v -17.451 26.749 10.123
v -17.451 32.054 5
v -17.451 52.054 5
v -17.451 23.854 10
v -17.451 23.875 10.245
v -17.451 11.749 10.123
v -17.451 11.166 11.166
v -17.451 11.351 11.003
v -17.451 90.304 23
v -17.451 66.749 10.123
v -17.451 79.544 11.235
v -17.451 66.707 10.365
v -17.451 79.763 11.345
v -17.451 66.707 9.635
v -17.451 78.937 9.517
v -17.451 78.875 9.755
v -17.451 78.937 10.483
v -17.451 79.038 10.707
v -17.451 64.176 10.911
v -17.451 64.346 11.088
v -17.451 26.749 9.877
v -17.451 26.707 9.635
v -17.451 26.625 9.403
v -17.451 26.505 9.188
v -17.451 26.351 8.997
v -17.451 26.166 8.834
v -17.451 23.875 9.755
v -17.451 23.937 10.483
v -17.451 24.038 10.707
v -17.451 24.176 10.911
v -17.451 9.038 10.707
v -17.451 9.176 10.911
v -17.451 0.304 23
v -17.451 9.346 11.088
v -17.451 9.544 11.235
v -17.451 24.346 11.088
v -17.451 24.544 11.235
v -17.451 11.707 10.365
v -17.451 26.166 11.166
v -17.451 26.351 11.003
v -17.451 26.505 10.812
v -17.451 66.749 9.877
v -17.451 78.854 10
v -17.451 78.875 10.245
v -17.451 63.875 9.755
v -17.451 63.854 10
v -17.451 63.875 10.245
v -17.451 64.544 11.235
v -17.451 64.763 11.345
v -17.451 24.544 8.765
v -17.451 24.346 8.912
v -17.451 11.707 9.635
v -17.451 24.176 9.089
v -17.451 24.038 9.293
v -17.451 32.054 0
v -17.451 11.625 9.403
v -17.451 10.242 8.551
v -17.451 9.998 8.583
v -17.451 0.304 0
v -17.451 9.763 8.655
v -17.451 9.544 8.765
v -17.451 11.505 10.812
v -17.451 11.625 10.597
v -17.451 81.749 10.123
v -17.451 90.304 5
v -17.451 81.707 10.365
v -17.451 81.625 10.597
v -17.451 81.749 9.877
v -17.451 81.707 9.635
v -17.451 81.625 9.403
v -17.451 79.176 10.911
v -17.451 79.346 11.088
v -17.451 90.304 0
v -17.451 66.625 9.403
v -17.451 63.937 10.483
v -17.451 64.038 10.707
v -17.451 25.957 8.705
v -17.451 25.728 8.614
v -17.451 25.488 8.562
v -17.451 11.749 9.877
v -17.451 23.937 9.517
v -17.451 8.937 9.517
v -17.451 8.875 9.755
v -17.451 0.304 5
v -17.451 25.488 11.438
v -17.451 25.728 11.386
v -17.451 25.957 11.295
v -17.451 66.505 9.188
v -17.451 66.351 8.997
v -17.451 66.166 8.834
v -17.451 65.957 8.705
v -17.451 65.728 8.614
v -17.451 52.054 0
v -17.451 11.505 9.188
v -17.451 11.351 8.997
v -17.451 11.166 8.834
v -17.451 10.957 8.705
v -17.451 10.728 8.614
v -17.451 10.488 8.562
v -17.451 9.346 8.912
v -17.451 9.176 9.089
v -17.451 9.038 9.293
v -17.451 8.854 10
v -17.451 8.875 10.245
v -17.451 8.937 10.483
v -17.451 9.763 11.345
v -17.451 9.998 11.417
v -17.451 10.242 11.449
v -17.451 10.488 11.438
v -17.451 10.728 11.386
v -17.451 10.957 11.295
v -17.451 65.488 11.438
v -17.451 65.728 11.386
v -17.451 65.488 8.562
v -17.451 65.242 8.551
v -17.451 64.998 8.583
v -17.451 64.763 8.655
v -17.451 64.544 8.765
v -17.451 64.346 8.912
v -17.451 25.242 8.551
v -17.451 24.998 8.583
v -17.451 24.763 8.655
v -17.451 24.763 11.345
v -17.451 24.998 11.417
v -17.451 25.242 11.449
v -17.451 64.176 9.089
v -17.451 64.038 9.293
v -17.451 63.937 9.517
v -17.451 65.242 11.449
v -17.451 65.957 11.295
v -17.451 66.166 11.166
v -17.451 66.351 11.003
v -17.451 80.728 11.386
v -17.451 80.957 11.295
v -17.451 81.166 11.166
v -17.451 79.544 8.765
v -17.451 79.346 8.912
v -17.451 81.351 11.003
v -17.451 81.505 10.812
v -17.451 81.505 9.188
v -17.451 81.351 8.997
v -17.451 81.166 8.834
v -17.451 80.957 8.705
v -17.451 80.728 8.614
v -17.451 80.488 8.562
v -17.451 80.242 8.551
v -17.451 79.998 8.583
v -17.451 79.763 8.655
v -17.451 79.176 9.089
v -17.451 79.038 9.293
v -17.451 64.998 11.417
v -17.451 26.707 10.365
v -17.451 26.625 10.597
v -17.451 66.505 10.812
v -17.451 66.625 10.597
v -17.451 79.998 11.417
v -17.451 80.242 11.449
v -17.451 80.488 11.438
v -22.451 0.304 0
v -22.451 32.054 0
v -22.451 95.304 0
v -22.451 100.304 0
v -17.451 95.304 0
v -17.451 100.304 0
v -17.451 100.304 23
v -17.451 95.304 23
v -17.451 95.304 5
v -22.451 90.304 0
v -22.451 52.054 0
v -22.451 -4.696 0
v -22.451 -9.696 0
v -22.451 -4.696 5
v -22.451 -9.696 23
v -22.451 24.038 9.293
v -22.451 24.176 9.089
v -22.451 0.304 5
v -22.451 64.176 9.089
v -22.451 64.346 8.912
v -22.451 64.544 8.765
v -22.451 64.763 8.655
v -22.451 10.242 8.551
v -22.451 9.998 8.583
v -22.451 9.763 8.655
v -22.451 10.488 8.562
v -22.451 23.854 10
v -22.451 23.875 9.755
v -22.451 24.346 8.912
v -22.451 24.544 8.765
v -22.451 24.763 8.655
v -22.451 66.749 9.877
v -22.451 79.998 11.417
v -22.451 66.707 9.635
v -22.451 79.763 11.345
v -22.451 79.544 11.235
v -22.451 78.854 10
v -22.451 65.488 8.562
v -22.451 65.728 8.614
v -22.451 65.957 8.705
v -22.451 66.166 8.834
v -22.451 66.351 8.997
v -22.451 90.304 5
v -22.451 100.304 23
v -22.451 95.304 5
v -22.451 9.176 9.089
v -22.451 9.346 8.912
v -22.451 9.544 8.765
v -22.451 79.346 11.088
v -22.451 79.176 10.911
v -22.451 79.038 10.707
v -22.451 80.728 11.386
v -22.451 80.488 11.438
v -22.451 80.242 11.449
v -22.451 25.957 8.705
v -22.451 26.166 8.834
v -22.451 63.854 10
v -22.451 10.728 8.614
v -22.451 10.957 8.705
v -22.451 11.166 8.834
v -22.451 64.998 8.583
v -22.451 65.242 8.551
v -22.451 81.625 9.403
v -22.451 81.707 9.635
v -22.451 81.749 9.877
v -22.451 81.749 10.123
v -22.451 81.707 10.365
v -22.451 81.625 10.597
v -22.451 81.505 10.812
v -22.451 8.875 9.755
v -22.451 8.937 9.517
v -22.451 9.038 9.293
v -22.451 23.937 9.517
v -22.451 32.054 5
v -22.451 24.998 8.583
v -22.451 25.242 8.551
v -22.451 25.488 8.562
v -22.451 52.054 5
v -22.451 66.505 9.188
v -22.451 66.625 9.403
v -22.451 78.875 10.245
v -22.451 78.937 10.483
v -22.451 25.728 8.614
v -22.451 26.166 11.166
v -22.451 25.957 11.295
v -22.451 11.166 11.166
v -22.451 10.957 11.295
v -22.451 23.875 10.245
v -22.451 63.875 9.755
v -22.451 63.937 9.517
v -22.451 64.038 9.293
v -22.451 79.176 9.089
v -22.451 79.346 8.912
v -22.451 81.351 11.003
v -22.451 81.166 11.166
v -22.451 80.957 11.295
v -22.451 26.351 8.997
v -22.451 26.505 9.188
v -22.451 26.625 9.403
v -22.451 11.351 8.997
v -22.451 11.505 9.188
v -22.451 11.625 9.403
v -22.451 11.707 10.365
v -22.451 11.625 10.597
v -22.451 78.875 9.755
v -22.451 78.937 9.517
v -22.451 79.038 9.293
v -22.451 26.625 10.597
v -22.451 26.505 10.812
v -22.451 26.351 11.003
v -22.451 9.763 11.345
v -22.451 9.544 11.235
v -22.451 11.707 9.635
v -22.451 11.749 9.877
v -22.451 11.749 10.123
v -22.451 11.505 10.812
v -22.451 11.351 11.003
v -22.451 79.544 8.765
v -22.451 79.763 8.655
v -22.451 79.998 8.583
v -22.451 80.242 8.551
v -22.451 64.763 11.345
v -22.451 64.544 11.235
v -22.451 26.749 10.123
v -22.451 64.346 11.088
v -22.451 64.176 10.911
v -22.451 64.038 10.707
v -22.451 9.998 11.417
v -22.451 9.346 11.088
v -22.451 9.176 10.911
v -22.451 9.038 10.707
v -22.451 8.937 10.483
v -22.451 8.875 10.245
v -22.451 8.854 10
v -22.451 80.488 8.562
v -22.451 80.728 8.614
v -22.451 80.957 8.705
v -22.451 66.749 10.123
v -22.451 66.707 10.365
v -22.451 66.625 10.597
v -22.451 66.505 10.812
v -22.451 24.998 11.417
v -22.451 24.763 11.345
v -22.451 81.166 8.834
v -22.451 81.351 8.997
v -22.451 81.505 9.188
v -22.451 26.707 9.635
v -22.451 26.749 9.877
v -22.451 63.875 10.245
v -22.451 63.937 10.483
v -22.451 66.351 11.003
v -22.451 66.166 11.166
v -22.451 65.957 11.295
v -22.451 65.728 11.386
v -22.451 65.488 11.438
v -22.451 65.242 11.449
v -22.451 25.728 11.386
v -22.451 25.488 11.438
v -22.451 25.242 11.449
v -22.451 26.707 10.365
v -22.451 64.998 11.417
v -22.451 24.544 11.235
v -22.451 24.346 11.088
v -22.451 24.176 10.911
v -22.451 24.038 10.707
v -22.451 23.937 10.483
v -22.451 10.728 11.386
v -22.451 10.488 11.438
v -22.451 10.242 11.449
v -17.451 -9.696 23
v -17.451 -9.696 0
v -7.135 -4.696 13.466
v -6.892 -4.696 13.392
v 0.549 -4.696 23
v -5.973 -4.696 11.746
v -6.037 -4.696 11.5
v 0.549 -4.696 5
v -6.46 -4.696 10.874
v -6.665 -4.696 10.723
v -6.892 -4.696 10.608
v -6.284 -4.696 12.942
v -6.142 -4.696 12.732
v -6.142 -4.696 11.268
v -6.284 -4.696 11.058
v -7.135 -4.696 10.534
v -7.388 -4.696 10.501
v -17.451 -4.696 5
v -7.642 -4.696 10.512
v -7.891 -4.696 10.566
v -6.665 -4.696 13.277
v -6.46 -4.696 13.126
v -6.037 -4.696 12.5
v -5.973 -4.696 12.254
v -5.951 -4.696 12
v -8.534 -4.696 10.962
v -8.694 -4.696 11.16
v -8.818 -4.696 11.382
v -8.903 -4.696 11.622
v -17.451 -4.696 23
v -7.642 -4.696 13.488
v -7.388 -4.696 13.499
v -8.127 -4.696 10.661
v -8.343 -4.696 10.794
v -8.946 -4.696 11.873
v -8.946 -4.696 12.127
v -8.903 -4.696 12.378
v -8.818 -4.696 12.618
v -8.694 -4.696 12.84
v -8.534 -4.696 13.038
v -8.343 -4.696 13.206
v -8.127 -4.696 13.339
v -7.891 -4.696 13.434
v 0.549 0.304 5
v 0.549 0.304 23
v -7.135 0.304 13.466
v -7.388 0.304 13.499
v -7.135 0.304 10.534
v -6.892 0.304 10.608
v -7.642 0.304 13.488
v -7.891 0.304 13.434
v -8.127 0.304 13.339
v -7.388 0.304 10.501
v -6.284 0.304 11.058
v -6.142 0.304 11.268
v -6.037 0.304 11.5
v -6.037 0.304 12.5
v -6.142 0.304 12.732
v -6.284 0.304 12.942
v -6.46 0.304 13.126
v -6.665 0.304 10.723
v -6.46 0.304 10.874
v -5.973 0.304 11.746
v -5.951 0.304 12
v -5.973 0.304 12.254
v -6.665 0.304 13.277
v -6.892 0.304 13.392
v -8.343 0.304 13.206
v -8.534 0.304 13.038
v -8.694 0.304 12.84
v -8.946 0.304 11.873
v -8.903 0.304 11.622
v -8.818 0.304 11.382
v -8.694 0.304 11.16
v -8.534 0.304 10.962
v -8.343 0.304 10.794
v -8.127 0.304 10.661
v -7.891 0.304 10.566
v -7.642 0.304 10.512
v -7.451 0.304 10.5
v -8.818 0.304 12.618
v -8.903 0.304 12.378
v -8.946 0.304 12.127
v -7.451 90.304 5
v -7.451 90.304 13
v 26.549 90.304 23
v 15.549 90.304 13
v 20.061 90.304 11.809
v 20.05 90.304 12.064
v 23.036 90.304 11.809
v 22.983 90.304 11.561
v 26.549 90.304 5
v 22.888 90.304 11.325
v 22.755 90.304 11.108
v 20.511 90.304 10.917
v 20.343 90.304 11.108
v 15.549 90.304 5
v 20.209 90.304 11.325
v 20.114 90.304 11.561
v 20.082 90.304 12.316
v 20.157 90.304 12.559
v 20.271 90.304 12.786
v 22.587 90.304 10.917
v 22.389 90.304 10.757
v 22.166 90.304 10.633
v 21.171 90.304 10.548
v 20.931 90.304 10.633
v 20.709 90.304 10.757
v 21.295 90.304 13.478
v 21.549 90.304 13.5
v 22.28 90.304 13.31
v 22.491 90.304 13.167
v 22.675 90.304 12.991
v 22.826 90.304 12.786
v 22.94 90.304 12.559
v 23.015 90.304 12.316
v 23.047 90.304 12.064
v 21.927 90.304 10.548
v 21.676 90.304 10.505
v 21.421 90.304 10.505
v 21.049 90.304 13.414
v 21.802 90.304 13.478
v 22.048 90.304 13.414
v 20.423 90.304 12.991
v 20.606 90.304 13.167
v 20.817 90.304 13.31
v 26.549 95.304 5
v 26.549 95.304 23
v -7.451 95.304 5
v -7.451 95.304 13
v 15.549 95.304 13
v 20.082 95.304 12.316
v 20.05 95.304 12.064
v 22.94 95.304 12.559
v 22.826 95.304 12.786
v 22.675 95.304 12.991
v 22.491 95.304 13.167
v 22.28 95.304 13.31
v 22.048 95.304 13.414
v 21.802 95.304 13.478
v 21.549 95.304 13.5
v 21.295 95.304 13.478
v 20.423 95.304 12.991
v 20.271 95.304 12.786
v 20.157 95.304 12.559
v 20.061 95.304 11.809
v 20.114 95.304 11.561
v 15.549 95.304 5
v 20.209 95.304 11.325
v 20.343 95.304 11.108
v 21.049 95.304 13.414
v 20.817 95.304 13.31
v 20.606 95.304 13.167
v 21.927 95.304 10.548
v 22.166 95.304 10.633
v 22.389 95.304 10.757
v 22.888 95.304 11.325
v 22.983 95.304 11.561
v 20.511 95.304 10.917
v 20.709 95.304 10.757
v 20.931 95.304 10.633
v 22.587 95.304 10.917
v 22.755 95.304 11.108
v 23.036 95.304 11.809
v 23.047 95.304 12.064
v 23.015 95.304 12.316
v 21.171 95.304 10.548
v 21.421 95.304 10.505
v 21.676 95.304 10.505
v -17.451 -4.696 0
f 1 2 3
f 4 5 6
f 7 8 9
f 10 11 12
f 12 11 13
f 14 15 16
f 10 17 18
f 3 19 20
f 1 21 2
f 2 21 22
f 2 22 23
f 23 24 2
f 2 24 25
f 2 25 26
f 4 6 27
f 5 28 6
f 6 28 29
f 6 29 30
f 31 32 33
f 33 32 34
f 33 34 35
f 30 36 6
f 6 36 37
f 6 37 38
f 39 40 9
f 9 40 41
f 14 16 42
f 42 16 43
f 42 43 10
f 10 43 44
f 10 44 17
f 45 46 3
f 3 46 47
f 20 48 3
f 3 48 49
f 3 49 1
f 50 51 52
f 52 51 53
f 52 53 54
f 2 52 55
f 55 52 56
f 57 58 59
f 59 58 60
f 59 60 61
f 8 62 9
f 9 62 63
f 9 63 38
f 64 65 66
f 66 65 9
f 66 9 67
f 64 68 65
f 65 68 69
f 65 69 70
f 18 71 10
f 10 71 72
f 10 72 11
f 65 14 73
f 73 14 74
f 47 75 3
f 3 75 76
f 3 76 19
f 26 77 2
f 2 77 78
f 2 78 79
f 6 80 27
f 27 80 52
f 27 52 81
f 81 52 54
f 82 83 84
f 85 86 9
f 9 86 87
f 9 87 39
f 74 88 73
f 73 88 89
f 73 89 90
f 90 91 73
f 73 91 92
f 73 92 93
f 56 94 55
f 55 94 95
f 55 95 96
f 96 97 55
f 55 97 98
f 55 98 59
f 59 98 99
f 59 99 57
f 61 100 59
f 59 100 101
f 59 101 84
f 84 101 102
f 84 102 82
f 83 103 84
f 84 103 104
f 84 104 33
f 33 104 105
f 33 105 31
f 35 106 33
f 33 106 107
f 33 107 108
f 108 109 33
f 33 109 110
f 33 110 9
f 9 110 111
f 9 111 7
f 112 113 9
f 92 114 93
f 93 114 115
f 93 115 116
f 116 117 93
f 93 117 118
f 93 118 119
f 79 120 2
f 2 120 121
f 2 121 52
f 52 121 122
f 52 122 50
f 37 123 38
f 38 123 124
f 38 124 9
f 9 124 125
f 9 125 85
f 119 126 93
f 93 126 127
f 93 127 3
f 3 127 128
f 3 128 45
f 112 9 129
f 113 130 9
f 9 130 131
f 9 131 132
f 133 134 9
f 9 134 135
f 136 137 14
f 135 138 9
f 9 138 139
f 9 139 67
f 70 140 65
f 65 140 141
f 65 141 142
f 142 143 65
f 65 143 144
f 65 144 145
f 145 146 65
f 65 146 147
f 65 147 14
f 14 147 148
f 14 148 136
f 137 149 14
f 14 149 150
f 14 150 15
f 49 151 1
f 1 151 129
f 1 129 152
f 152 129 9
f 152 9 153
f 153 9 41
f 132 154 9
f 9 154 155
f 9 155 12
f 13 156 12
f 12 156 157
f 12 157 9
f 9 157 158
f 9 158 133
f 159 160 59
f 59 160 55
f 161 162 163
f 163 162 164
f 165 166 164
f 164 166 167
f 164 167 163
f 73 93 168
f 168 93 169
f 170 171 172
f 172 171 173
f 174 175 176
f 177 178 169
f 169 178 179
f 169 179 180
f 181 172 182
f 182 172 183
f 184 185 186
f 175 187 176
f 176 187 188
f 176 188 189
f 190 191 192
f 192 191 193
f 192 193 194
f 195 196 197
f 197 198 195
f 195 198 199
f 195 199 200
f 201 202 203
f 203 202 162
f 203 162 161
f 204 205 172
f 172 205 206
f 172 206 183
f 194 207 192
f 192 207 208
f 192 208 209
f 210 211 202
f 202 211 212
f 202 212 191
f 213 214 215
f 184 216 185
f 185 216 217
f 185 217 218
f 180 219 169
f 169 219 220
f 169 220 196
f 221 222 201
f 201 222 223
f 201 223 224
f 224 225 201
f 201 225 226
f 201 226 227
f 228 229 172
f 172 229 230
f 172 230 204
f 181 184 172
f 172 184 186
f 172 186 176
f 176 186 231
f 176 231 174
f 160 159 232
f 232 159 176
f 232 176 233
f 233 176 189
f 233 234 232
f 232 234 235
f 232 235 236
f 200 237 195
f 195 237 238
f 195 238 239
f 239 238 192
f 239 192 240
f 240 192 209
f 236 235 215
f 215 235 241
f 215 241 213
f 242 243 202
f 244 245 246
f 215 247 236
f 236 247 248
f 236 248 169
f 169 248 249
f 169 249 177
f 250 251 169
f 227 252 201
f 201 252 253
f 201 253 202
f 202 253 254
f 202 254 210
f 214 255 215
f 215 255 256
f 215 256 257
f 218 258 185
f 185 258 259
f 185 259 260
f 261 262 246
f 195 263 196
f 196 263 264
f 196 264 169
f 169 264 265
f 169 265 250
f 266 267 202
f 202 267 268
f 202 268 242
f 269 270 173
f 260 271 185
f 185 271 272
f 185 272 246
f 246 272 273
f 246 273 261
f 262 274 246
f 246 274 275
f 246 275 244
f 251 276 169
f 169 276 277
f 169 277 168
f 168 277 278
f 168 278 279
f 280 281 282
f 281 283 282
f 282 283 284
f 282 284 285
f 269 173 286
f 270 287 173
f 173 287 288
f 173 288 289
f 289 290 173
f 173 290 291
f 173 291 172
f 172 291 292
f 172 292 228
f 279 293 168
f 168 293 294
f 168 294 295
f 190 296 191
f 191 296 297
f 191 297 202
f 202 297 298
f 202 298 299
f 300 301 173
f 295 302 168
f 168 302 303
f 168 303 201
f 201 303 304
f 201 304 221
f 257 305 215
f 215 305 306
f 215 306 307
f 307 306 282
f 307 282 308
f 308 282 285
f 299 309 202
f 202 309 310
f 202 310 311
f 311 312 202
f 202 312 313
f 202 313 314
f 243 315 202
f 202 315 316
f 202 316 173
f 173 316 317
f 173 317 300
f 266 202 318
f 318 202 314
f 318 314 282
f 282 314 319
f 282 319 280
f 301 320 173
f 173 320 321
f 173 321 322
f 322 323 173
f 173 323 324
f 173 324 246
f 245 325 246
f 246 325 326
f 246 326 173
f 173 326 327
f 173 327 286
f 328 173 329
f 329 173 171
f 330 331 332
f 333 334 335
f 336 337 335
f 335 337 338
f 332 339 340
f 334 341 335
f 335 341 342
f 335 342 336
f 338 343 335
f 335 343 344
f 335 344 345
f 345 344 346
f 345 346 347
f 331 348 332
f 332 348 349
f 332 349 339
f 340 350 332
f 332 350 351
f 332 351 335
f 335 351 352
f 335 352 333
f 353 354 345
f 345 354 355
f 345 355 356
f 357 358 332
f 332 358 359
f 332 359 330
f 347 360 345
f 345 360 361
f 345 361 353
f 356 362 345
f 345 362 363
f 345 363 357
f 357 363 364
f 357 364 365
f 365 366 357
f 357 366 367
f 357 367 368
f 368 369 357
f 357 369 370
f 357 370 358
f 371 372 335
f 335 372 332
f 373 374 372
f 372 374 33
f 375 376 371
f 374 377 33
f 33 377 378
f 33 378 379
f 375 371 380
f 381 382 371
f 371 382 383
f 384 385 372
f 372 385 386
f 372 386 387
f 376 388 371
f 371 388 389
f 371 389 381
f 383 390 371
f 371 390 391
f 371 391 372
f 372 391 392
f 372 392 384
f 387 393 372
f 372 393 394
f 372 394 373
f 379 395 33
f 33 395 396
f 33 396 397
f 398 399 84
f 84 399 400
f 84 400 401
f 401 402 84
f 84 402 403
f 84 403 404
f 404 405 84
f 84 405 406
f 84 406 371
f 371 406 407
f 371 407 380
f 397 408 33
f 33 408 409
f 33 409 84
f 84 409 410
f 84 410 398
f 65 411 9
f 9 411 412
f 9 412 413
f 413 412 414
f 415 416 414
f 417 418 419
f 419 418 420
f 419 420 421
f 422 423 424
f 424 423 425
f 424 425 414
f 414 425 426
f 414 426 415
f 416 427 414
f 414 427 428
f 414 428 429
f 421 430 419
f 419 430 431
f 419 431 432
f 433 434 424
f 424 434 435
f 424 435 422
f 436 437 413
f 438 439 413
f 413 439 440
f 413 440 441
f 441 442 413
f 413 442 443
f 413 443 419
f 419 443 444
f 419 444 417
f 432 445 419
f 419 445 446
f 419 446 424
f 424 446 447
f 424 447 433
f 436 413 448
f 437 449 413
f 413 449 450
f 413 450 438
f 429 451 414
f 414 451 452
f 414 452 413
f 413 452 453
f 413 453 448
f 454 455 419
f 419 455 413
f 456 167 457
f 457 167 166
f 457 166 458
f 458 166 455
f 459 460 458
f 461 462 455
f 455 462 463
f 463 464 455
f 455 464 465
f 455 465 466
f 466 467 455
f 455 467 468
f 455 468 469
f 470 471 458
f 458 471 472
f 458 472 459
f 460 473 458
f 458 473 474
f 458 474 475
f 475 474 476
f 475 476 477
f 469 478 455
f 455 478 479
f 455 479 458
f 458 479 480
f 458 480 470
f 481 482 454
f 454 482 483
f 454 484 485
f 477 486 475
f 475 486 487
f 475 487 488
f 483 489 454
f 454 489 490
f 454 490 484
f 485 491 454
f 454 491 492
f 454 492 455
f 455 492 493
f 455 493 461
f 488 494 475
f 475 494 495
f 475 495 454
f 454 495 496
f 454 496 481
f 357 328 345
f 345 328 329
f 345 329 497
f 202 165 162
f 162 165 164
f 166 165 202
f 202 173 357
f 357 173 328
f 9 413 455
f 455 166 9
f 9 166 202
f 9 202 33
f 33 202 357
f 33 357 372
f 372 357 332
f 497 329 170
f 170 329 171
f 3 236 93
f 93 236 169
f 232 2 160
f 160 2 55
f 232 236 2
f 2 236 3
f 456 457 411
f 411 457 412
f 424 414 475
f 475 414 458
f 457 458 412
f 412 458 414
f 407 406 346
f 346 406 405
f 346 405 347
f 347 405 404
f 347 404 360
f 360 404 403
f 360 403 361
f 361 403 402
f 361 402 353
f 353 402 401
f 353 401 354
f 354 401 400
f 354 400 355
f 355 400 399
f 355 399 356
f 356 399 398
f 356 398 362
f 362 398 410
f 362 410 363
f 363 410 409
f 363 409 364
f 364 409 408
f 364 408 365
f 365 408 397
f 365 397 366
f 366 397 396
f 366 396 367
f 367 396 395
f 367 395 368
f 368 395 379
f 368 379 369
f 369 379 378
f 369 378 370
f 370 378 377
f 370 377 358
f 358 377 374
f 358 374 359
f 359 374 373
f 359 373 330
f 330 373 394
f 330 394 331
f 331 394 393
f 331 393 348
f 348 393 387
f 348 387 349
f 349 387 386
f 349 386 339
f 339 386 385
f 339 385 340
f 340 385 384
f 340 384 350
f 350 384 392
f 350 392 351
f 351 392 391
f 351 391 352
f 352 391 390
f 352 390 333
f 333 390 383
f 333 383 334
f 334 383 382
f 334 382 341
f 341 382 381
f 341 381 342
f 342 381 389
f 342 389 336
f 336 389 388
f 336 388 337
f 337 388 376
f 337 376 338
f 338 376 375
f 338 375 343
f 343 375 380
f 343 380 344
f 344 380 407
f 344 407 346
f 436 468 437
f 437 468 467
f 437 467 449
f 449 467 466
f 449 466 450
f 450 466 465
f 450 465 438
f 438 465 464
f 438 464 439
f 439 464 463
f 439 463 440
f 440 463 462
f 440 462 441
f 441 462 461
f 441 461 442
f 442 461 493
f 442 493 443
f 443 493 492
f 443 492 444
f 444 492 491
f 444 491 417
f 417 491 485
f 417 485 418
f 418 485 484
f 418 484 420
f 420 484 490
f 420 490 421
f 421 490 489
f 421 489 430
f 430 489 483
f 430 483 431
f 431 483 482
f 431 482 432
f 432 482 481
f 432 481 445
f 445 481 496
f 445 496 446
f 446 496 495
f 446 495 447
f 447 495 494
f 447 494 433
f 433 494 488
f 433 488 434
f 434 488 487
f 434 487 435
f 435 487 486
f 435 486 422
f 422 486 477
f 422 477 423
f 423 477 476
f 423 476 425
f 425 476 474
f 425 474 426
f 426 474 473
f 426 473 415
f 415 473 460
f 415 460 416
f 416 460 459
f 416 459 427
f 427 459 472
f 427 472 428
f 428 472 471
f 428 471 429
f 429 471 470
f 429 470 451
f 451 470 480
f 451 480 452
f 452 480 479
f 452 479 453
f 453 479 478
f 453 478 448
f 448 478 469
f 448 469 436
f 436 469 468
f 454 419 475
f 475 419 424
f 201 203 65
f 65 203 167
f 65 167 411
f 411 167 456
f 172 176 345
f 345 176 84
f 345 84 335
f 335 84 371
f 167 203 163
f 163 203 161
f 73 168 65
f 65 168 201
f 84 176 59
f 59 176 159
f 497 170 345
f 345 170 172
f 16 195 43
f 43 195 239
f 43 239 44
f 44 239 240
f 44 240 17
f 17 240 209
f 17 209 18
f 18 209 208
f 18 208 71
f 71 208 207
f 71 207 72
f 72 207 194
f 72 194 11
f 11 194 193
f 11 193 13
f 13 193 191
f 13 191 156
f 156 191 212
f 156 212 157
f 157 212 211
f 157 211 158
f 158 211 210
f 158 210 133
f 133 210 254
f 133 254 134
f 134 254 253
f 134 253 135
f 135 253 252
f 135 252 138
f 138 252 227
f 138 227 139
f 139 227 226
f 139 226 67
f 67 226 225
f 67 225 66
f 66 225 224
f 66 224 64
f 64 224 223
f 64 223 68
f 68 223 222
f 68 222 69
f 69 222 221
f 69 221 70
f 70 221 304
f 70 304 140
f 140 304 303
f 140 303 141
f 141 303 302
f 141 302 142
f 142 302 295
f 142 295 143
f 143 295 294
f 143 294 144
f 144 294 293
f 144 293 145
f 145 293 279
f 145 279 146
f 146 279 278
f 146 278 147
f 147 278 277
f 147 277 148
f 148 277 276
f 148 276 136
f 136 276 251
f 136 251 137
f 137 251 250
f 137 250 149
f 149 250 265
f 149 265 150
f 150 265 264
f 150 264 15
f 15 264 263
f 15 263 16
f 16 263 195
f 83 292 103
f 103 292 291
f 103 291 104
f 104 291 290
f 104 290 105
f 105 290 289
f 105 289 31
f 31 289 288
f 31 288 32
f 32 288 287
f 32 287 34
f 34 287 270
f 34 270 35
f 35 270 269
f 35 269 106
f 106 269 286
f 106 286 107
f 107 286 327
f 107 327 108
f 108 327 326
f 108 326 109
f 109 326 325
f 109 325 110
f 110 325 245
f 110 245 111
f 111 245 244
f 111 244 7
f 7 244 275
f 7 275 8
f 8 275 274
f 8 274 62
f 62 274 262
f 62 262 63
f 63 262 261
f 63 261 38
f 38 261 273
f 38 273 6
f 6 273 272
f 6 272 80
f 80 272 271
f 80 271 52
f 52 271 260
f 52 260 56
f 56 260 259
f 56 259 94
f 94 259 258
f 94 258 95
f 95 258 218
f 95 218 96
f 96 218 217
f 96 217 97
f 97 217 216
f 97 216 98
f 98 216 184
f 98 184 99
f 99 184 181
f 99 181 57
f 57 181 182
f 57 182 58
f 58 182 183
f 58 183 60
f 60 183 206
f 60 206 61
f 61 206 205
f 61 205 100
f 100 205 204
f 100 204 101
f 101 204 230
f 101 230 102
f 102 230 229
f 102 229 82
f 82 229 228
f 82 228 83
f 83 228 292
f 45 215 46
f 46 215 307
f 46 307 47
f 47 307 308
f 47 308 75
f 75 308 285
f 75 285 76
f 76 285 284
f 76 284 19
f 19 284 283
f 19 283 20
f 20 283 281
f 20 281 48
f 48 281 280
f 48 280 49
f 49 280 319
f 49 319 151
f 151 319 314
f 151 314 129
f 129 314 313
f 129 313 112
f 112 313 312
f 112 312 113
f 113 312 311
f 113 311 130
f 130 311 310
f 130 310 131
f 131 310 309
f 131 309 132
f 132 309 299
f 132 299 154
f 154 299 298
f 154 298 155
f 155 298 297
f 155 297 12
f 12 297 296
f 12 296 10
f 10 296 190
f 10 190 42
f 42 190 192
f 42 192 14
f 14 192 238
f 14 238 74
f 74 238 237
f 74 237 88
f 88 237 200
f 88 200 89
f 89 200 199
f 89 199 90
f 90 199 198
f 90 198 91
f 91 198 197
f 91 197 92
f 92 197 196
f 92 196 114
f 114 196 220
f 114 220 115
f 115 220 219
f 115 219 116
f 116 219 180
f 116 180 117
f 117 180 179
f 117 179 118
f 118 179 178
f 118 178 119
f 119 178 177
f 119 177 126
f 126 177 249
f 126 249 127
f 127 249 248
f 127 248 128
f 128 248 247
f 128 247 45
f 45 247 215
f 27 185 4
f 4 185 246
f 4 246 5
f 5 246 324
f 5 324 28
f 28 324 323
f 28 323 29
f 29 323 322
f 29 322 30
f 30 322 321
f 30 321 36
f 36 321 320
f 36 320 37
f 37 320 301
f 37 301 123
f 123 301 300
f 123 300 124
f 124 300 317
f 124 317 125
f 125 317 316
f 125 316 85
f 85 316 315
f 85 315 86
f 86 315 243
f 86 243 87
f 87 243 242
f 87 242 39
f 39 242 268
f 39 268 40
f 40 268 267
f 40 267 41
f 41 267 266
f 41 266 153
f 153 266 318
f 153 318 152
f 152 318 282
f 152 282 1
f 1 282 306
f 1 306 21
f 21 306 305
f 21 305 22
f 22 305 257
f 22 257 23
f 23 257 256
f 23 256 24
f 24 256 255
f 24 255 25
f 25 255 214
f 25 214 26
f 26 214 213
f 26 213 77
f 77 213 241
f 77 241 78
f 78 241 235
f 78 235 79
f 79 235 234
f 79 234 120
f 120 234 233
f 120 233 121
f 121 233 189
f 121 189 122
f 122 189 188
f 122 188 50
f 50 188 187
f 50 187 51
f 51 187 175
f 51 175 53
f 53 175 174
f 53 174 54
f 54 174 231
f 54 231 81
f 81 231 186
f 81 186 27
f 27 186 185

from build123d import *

# Parameters (mm, degrees)
EXTRUDE_1_DEPTH     = 23
SKETCH_2_W          = 5
SKETCH_2_H          = 20
CUT_EXTRUDE_1_DEPTH = 5
CUT_EXTRUDE_2_REACH = 112.72
SKETCH_4_W          = 23
SKETCH_4_H          = 13
CUT_EXTRUDE_3_REACH = 112.72
SKETCH_3_R          = 1.5
SKETCH_7_R          = 1.5
CUT_EXTRUDE_4_DEPTH = 111.719601125
SKETCH_8_W          = 76.143558985
SKETCH_8_H          = 113.649709854
CUT_EXTRUDE_5_DEPTH = 5
SKETCH_9_W          = 28.016263666
SKETCH_9_H          = 5
SKETCH_9_W_2        = 40.160076627
CUT_EXTRUDE_6_DEPTH = 5
SKETCH_10_R         = 1.45
CUT_EXTRUDE_7_DEPTH = 114.977488026


with BuildPart() as part:
    # 草圖1 → 填料-伸長1 (new body)
    with BuildSketch(Plane.XY):
        Polygon((-17.451364004, -4.696122823), (-17.451364004, -9.696122823), (-22.451364004, -9.696122823), (-22.451364004, 100.303877177), (-17.451364004, 100.303877177), (-17.451364004, 95.303877177), (26.548635996, 95.303877177), (26.548635996, 90.303877177), (-17.451364004, 90.303877177), (-17.451364004, 0.303877177), (0.548635996, 0.303877177), (0.548635996, -4.696122823), align=None)
    extrude(amount=EXTRUDE_1_DEPTH)

    # 草圖2 → 除料-伸長1 (cut)
    with BuildSketch(Plane(origin=(0, 0, 0), x_dir=(-1, 0, 0), z_dir=(0, 0, -1))):
        with Locations((19.951364004, 42.053877177)):
            Rectangle(SKETCH_2_W, SKETCH_2_H)
    extrude(amount=-CUT_EXTRUDE_1_DEPTH, mode=Mode.SUBTRACT)

    # 草圖4 → 除料-伸長2 (cut, up to next)
    with BuildSketch(Plane(origin=(0, 95.303877177, 0), x_dir=(1, 0, 0), z_dir=(0, 1, 0)), mode=Mode.PRIVATE) as cut_extrude_2_sk1:
        with Locations((4.048635996, -6.5)):
            Rectangle(SKETCH_4_W, SKETCH_4_H)
    cut_extrude_2_tool1 = extrude(cut_extrude_2_sk1.sketch, amount=-CUT_EXTRUDE_2_REACH, mode=Mode.PRIVATE) & part.part
    add(cut_extrude_2_tool1.solids().sort_by_distance((4.048636, 95.303877, 6.5))[0], mode=Mode.SUBTRACT)

    # 草圖3 → 除料-伸長3 (cut, up to next)
    with BuildSketch(Plane.XZ.offset(4.696122823), mode=Mode.PRIVATE) as cut_extrude_3_sk1:
        with Locations((-7.451364004, 12)):
            Circle(SKETCH_3_R)
    cut_extrude_3_tool1 = extrude(cut_extrude_3_sk1.sketch, amount=-CUT_EXTRUDE_3_REACH, mode=Mode.PRIVATE) & part.part
    add(cut_extrude_3_tool1.solids().sort_by_distance((-7.451364, -4.696123, 12))[0], mode=Mode.SUBTRACT)

    # 草圖7 → 除料-伸長4 (cut, through all)
    with BuildSketch(Plane(origin=(0, 95.303877177, 0), x_dir=(1, 0, 0), z_dir=(0, 1, 0))):
        with Locations(Location((21.548635996, -12, 0), (0, 0, 270))):
            Circle(SKETCH_7_R)
    extrude(amount=-CUT_EXTRUDE_4_DEPTH, mode=Mode.SUBTRACT)

    # 草圖8 → 除料-伸長5 (cut)
    with BuildSketch(Plane(origin=(0, 0, 0), x_dir=(-1, 0, 0), z_dir=(0, 0, -1))):
        with Locations((-20.620415489, 43.47902225)):
            Rectangle(SKETCH_8_W, SKETCH_8_H)
    extrude(amount=-CUT_EXTRUDE_5_DEPTH, mode=Mode.SUBTRACT)

    # 草圖9 → 除料-伸長6 (cut)
    with BuildSketch(Plane(origin=(0, 0, 0), x_dir=(-1, 0, 0), z_dir=(0, 0, -1))):
        with Locations((31.459495837, 92.803877177)):
            Rectangle(SKETCH_9_W, SKETCH_9_H)
        with Locations((37.531402318, -2.196122823)):
            Rectangle(SKETCH_9_W_2, SKETCH_9_H)
    extrude(amount=-CUT_EXTRUDE_6_DEPTH, mode=Mode.SUBTRACT)

    # 草圖10 → 除料-伸長7 (cut, through all)
    with BuildSketch(Plane.ZY.offset(22.451364004)):
        with Locations(Location((10, 80.303877177, 0), (0, 0, 270))):
            Circle(SKETCH_10_R)
        with Locations(Location((10, 10.303877177, 0), (0, 0, 270))):
            Circle(SKETCH_10_R)
        with Locations(Location((10, 65.303877177, 0), (0, 0, 270))):
            Circle(SKETCH_10_R)
        with Locations(Location((10, 25.303877177, 0), (0, 0, 270))):
            Circle(SKETCH_10_R)
    extrude(amount=-CUT_EXTRUDE_7_DEPTH, mode=Mode.SUBTRACT)


solid = part.part
